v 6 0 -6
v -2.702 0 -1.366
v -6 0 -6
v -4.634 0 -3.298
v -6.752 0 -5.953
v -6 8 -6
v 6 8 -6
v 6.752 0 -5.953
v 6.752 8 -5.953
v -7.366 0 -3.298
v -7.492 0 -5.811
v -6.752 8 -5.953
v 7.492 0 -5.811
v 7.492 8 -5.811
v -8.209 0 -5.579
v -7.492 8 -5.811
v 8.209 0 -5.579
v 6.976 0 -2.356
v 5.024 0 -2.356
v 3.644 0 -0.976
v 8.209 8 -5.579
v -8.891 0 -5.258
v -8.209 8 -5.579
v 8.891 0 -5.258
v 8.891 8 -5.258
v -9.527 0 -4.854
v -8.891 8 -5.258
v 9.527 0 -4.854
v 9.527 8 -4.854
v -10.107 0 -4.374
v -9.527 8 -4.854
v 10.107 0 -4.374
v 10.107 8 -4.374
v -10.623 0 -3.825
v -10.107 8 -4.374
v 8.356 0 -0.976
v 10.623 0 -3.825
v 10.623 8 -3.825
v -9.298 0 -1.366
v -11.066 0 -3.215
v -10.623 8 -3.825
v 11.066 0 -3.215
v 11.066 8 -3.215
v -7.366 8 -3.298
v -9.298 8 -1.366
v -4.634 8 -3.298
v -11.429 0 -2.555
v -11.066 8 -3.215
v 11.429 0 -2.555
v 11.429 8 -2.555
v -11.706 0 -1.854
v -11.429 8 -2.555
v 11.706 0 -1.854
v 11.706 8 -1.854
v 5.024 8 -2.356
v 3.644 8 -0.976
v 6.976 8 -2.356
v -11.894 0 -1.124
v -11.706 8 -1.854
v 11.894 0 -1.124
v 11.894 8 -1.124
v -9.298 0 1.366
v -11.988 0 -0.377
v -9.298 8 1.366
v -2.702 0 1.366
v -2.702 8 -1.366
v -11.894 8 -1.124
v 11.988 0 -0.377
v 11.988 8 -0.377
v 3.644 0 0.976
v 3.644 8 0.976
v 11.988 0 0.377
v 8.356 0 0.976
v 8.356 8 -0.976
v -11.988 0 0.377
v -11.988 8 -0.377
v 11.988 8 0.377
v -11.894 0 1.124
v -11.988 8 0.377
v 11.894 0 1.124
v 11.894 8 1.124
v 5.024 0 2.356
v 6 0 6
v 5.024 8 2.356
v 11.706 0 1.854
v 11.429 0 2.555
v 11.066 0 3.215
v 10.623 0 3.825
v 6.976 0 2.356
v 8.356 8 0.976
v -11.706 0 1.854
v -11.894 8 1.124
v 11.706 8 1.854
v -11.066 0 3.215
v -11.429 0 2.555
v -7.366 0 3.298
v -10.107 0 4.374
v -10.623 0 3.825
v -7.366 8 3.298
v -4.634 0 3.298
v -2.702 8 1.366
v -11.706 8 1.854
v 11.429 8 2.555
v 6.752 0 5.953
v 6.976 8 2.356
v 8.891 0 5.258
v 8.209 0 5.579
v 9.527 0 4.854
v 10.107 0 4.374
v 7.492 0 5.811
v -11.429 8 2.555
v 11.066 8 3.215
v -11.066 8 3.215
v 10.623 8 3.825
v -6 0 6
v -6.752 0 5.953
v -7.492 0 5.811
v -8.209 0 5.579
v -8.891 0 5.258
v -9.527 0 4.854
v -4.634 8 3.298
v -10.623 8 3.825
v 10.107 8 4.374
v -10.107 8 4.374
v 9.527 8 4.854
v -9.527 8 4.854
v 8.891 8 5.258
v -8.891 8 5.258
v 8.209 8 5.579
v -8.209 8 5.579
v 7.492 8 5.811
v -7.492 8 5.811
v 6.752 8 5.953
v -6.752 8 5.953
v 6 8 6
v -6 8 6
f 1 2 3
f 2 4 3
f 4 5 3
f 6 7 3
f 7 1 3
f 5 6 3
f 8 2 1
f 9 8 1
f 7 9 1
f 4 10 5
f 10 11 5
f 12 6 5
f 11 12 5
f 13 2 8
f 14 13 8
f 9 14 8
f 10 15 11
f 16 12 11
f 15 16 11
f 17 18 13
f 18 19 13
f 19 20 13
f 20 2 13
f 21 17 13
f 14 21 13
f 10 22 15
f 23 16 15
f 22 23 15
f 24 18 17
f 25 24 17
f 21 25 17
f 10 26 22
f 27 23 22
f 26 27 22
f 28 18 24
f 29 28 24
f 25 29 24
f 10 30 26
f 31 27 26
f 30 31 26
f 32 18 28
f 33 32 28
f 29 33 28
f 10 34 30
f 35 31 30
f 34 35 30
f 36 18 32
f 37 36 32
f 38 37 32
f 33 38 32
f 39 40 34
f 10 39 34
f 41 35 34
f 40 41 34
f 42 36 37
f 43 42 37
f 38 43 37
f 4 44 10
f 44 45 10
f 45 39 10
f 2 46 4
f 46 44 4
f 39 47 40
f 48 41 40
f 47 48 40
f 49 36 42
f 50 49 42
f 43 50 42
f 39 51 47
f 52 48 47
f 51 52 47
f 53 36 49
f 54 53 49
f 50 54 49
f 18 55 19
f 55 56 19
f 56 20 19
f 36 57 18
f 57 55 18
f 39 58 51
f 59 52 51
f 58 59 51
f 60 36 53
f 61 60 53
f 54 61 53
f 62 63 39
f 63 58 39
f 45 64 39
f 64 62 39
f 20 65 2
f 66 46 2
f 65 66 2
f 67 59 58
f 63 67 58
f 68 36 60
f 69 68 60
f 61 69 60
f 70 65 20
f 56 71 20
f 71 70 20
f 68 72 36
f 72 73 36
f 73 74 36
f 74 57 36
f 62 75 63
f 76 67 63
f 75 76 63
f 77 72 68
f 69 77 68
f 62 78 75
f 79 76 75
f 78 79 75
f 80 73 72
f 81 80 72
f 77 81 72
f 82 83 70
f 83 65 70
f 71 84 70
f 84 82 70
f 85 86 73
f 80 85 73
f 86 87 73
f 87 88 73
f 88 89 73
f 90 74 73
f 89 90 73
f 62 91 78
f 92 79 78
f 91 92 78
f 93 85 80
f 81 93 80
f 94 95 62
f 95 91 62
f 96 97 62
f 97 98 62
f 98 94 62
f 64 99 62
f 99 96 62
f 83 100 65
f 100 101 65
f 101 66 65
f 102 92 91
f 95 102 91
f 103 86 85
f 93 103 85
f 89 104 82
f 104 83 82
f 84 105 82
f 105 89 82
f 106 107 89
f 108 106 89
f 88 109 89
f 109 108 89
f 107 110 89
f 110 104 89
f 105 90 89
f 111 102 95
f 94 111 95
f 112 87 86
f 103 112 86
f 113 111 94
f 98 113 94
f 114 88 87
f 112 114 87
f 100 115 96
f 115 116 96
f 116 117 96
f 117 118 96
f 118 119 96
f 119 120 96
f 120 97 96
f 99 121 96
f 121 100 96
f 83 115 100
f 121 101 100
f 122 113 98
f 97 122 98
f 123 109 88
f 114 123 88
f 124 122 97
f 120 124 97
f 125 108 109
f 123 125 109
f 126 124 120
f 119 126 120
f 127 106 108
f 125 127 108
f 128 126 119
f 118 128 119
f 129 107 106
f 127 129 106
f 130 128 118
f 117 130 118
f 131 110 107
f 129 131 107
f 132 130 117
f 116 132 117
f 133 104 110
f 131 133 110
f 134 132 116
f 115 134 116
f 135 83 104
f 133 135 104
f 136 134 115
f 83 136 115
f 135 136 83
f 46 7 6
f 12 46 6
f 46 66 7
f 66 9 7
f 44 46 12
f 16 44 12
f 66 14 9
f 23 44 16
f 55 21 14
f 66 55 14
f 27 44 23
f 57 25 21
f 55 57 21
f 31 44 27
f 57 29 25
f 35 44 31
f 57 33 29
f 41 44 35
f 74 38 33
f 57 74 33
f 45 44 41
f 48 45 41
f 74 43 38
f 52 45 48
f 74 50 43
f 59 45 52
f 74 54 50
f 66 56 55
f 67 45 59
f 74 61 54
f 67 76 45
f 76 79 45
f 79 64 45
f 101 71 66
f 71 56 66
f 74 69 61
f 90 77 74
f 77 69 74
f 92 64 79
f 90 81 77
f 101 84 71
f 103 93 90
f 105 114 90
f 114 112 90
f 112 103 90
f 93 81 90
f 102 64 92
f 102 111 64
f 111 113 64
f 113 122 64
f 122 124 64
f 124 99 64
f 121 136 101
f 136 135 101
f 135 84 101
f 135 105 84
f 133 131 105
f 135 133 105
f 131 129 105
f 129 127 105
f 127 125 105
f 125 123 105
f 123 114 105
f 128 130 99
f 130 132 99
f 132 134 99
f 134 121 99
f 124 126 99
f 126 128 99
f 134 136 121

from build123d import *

# Parameters (mm, degrees)
BOSS_EXTRUDE1_DEPTH = 8


with BuildPart() as part:
    # Sketch1 → Boss-Extrude1 (new body)
    with BuildSketch(Plane(origin=(0, 0, 0), x_dir=(1, 0, 0), z_dir=(0, 1, 0))):
        with BuildLine():
            Line((-6, 6), (6, 6))
            ThreePointArc((6, 6), (12, 0), (6, -6))
            Line((6, -6), (-6, -6))
            ThreePointArc((-6, -6), (-12, 0), (-6, 6))
        make_face()
        Polygon((-4.63382, 3.298250285), (-7.36618, 3.298250285), (-9.298250285, 1.36618), (-9.298250285, -1.36618), (-7.36618, -3.298250285), (-4.63382, -3.298250285), (-2.701749715, -1.36618), (-2.701749715, 1.36618), align=None, mode=Mode.SUBTRACT)
        Polygon((8.355898234, 0.975845), (6.975845, 2.355898234), (5.024155, 2.355898234), (3.644101766, 0.975845), (3.644101766, -0.975845), (5.024155, -2.355898234), (6.975845, -2.355898234), (8.355898234, -0.975845), align=None, mode=Mode.SUBTRACT)
    extrude(amount=BOSS_EXTRUDE1_DEPTH)


solid = part.part
